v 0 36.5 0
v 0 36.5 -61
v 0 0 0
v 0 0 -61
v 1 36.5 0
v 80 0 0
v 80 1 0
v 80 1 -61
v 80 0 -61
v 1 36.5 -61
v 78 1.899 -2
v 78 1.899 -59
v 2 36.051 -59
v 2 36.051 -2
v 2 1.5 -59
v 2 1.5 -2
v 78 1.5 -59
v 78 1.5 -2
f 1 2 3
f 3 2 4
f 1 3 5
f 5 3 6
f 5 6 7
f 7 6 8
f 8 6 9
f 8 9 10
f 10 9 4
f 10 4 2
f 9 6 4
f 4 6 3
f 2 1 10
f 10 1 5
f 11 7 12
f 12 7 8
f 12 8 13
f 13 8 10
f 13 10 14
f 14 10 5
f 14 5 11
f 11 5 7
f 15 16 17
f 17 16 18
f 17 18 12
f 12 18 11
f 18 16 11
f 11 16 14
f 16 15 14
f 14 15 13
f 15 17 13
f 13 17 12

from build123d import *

# Parameters (mm, degrees)
SKETCH_1_W          = 80
SKETCH_1_H          = 61
EXTRUDE_1_DEPTH     = 1.5
SKETCH_5_W          = 80
SKETCH_5_H          = 61
SKETCH_5_W_2        = 76
SKETCH_5_H_2        = 57
EXTRUDE_3_DEPTH     = 35
CUT_EXTRUDE_2_DEPTH = 108.01985797


with BuildPart() as part:
    # 草图1 → 凸台-拉伸1 (new body)
    with BuildSketch(Plane(origin=(0, 0, 0), x_dir=(1, 0, 0), z_dir=(0, 1, 0))):
        with Locations((40, 30.5)):
            Rectangle(SKETCH_1_W, SKETCH_1_H)
    extrude(amount=EXTRUDE_1_DEPTH)

    # 草图5 → 凸台-拉伸3 (add)
    with BuildSketch(Plane(origin=(0, 1.5, 0), x_dir=(1, 0, 0), z_dir=(0, 1, 0))):
        with Locations((40, 30.5)):
            Rectangle(SKETCH_5_W, SKETCH_5_H)
        with Locations((40, 30.5)):
            Rectangle(SKETCH_5_W_2, SKETCH_5_H_2, mode=Mode.SUBTRACT)
    extrude(amount=EXTRUDE_3_DEPTH)

    # 草图6 → 切除-拉伸2 (cut, through all)
    with BuildSketch(Plane.XY):
        Polygon((1, 36.5), (80, 36.5), (80, 1), align=None)
    extrude(amount=-CUT_EXTRUDE_2_DEPTH, mode=Mode.SUBTRACT)


solid = part.part
